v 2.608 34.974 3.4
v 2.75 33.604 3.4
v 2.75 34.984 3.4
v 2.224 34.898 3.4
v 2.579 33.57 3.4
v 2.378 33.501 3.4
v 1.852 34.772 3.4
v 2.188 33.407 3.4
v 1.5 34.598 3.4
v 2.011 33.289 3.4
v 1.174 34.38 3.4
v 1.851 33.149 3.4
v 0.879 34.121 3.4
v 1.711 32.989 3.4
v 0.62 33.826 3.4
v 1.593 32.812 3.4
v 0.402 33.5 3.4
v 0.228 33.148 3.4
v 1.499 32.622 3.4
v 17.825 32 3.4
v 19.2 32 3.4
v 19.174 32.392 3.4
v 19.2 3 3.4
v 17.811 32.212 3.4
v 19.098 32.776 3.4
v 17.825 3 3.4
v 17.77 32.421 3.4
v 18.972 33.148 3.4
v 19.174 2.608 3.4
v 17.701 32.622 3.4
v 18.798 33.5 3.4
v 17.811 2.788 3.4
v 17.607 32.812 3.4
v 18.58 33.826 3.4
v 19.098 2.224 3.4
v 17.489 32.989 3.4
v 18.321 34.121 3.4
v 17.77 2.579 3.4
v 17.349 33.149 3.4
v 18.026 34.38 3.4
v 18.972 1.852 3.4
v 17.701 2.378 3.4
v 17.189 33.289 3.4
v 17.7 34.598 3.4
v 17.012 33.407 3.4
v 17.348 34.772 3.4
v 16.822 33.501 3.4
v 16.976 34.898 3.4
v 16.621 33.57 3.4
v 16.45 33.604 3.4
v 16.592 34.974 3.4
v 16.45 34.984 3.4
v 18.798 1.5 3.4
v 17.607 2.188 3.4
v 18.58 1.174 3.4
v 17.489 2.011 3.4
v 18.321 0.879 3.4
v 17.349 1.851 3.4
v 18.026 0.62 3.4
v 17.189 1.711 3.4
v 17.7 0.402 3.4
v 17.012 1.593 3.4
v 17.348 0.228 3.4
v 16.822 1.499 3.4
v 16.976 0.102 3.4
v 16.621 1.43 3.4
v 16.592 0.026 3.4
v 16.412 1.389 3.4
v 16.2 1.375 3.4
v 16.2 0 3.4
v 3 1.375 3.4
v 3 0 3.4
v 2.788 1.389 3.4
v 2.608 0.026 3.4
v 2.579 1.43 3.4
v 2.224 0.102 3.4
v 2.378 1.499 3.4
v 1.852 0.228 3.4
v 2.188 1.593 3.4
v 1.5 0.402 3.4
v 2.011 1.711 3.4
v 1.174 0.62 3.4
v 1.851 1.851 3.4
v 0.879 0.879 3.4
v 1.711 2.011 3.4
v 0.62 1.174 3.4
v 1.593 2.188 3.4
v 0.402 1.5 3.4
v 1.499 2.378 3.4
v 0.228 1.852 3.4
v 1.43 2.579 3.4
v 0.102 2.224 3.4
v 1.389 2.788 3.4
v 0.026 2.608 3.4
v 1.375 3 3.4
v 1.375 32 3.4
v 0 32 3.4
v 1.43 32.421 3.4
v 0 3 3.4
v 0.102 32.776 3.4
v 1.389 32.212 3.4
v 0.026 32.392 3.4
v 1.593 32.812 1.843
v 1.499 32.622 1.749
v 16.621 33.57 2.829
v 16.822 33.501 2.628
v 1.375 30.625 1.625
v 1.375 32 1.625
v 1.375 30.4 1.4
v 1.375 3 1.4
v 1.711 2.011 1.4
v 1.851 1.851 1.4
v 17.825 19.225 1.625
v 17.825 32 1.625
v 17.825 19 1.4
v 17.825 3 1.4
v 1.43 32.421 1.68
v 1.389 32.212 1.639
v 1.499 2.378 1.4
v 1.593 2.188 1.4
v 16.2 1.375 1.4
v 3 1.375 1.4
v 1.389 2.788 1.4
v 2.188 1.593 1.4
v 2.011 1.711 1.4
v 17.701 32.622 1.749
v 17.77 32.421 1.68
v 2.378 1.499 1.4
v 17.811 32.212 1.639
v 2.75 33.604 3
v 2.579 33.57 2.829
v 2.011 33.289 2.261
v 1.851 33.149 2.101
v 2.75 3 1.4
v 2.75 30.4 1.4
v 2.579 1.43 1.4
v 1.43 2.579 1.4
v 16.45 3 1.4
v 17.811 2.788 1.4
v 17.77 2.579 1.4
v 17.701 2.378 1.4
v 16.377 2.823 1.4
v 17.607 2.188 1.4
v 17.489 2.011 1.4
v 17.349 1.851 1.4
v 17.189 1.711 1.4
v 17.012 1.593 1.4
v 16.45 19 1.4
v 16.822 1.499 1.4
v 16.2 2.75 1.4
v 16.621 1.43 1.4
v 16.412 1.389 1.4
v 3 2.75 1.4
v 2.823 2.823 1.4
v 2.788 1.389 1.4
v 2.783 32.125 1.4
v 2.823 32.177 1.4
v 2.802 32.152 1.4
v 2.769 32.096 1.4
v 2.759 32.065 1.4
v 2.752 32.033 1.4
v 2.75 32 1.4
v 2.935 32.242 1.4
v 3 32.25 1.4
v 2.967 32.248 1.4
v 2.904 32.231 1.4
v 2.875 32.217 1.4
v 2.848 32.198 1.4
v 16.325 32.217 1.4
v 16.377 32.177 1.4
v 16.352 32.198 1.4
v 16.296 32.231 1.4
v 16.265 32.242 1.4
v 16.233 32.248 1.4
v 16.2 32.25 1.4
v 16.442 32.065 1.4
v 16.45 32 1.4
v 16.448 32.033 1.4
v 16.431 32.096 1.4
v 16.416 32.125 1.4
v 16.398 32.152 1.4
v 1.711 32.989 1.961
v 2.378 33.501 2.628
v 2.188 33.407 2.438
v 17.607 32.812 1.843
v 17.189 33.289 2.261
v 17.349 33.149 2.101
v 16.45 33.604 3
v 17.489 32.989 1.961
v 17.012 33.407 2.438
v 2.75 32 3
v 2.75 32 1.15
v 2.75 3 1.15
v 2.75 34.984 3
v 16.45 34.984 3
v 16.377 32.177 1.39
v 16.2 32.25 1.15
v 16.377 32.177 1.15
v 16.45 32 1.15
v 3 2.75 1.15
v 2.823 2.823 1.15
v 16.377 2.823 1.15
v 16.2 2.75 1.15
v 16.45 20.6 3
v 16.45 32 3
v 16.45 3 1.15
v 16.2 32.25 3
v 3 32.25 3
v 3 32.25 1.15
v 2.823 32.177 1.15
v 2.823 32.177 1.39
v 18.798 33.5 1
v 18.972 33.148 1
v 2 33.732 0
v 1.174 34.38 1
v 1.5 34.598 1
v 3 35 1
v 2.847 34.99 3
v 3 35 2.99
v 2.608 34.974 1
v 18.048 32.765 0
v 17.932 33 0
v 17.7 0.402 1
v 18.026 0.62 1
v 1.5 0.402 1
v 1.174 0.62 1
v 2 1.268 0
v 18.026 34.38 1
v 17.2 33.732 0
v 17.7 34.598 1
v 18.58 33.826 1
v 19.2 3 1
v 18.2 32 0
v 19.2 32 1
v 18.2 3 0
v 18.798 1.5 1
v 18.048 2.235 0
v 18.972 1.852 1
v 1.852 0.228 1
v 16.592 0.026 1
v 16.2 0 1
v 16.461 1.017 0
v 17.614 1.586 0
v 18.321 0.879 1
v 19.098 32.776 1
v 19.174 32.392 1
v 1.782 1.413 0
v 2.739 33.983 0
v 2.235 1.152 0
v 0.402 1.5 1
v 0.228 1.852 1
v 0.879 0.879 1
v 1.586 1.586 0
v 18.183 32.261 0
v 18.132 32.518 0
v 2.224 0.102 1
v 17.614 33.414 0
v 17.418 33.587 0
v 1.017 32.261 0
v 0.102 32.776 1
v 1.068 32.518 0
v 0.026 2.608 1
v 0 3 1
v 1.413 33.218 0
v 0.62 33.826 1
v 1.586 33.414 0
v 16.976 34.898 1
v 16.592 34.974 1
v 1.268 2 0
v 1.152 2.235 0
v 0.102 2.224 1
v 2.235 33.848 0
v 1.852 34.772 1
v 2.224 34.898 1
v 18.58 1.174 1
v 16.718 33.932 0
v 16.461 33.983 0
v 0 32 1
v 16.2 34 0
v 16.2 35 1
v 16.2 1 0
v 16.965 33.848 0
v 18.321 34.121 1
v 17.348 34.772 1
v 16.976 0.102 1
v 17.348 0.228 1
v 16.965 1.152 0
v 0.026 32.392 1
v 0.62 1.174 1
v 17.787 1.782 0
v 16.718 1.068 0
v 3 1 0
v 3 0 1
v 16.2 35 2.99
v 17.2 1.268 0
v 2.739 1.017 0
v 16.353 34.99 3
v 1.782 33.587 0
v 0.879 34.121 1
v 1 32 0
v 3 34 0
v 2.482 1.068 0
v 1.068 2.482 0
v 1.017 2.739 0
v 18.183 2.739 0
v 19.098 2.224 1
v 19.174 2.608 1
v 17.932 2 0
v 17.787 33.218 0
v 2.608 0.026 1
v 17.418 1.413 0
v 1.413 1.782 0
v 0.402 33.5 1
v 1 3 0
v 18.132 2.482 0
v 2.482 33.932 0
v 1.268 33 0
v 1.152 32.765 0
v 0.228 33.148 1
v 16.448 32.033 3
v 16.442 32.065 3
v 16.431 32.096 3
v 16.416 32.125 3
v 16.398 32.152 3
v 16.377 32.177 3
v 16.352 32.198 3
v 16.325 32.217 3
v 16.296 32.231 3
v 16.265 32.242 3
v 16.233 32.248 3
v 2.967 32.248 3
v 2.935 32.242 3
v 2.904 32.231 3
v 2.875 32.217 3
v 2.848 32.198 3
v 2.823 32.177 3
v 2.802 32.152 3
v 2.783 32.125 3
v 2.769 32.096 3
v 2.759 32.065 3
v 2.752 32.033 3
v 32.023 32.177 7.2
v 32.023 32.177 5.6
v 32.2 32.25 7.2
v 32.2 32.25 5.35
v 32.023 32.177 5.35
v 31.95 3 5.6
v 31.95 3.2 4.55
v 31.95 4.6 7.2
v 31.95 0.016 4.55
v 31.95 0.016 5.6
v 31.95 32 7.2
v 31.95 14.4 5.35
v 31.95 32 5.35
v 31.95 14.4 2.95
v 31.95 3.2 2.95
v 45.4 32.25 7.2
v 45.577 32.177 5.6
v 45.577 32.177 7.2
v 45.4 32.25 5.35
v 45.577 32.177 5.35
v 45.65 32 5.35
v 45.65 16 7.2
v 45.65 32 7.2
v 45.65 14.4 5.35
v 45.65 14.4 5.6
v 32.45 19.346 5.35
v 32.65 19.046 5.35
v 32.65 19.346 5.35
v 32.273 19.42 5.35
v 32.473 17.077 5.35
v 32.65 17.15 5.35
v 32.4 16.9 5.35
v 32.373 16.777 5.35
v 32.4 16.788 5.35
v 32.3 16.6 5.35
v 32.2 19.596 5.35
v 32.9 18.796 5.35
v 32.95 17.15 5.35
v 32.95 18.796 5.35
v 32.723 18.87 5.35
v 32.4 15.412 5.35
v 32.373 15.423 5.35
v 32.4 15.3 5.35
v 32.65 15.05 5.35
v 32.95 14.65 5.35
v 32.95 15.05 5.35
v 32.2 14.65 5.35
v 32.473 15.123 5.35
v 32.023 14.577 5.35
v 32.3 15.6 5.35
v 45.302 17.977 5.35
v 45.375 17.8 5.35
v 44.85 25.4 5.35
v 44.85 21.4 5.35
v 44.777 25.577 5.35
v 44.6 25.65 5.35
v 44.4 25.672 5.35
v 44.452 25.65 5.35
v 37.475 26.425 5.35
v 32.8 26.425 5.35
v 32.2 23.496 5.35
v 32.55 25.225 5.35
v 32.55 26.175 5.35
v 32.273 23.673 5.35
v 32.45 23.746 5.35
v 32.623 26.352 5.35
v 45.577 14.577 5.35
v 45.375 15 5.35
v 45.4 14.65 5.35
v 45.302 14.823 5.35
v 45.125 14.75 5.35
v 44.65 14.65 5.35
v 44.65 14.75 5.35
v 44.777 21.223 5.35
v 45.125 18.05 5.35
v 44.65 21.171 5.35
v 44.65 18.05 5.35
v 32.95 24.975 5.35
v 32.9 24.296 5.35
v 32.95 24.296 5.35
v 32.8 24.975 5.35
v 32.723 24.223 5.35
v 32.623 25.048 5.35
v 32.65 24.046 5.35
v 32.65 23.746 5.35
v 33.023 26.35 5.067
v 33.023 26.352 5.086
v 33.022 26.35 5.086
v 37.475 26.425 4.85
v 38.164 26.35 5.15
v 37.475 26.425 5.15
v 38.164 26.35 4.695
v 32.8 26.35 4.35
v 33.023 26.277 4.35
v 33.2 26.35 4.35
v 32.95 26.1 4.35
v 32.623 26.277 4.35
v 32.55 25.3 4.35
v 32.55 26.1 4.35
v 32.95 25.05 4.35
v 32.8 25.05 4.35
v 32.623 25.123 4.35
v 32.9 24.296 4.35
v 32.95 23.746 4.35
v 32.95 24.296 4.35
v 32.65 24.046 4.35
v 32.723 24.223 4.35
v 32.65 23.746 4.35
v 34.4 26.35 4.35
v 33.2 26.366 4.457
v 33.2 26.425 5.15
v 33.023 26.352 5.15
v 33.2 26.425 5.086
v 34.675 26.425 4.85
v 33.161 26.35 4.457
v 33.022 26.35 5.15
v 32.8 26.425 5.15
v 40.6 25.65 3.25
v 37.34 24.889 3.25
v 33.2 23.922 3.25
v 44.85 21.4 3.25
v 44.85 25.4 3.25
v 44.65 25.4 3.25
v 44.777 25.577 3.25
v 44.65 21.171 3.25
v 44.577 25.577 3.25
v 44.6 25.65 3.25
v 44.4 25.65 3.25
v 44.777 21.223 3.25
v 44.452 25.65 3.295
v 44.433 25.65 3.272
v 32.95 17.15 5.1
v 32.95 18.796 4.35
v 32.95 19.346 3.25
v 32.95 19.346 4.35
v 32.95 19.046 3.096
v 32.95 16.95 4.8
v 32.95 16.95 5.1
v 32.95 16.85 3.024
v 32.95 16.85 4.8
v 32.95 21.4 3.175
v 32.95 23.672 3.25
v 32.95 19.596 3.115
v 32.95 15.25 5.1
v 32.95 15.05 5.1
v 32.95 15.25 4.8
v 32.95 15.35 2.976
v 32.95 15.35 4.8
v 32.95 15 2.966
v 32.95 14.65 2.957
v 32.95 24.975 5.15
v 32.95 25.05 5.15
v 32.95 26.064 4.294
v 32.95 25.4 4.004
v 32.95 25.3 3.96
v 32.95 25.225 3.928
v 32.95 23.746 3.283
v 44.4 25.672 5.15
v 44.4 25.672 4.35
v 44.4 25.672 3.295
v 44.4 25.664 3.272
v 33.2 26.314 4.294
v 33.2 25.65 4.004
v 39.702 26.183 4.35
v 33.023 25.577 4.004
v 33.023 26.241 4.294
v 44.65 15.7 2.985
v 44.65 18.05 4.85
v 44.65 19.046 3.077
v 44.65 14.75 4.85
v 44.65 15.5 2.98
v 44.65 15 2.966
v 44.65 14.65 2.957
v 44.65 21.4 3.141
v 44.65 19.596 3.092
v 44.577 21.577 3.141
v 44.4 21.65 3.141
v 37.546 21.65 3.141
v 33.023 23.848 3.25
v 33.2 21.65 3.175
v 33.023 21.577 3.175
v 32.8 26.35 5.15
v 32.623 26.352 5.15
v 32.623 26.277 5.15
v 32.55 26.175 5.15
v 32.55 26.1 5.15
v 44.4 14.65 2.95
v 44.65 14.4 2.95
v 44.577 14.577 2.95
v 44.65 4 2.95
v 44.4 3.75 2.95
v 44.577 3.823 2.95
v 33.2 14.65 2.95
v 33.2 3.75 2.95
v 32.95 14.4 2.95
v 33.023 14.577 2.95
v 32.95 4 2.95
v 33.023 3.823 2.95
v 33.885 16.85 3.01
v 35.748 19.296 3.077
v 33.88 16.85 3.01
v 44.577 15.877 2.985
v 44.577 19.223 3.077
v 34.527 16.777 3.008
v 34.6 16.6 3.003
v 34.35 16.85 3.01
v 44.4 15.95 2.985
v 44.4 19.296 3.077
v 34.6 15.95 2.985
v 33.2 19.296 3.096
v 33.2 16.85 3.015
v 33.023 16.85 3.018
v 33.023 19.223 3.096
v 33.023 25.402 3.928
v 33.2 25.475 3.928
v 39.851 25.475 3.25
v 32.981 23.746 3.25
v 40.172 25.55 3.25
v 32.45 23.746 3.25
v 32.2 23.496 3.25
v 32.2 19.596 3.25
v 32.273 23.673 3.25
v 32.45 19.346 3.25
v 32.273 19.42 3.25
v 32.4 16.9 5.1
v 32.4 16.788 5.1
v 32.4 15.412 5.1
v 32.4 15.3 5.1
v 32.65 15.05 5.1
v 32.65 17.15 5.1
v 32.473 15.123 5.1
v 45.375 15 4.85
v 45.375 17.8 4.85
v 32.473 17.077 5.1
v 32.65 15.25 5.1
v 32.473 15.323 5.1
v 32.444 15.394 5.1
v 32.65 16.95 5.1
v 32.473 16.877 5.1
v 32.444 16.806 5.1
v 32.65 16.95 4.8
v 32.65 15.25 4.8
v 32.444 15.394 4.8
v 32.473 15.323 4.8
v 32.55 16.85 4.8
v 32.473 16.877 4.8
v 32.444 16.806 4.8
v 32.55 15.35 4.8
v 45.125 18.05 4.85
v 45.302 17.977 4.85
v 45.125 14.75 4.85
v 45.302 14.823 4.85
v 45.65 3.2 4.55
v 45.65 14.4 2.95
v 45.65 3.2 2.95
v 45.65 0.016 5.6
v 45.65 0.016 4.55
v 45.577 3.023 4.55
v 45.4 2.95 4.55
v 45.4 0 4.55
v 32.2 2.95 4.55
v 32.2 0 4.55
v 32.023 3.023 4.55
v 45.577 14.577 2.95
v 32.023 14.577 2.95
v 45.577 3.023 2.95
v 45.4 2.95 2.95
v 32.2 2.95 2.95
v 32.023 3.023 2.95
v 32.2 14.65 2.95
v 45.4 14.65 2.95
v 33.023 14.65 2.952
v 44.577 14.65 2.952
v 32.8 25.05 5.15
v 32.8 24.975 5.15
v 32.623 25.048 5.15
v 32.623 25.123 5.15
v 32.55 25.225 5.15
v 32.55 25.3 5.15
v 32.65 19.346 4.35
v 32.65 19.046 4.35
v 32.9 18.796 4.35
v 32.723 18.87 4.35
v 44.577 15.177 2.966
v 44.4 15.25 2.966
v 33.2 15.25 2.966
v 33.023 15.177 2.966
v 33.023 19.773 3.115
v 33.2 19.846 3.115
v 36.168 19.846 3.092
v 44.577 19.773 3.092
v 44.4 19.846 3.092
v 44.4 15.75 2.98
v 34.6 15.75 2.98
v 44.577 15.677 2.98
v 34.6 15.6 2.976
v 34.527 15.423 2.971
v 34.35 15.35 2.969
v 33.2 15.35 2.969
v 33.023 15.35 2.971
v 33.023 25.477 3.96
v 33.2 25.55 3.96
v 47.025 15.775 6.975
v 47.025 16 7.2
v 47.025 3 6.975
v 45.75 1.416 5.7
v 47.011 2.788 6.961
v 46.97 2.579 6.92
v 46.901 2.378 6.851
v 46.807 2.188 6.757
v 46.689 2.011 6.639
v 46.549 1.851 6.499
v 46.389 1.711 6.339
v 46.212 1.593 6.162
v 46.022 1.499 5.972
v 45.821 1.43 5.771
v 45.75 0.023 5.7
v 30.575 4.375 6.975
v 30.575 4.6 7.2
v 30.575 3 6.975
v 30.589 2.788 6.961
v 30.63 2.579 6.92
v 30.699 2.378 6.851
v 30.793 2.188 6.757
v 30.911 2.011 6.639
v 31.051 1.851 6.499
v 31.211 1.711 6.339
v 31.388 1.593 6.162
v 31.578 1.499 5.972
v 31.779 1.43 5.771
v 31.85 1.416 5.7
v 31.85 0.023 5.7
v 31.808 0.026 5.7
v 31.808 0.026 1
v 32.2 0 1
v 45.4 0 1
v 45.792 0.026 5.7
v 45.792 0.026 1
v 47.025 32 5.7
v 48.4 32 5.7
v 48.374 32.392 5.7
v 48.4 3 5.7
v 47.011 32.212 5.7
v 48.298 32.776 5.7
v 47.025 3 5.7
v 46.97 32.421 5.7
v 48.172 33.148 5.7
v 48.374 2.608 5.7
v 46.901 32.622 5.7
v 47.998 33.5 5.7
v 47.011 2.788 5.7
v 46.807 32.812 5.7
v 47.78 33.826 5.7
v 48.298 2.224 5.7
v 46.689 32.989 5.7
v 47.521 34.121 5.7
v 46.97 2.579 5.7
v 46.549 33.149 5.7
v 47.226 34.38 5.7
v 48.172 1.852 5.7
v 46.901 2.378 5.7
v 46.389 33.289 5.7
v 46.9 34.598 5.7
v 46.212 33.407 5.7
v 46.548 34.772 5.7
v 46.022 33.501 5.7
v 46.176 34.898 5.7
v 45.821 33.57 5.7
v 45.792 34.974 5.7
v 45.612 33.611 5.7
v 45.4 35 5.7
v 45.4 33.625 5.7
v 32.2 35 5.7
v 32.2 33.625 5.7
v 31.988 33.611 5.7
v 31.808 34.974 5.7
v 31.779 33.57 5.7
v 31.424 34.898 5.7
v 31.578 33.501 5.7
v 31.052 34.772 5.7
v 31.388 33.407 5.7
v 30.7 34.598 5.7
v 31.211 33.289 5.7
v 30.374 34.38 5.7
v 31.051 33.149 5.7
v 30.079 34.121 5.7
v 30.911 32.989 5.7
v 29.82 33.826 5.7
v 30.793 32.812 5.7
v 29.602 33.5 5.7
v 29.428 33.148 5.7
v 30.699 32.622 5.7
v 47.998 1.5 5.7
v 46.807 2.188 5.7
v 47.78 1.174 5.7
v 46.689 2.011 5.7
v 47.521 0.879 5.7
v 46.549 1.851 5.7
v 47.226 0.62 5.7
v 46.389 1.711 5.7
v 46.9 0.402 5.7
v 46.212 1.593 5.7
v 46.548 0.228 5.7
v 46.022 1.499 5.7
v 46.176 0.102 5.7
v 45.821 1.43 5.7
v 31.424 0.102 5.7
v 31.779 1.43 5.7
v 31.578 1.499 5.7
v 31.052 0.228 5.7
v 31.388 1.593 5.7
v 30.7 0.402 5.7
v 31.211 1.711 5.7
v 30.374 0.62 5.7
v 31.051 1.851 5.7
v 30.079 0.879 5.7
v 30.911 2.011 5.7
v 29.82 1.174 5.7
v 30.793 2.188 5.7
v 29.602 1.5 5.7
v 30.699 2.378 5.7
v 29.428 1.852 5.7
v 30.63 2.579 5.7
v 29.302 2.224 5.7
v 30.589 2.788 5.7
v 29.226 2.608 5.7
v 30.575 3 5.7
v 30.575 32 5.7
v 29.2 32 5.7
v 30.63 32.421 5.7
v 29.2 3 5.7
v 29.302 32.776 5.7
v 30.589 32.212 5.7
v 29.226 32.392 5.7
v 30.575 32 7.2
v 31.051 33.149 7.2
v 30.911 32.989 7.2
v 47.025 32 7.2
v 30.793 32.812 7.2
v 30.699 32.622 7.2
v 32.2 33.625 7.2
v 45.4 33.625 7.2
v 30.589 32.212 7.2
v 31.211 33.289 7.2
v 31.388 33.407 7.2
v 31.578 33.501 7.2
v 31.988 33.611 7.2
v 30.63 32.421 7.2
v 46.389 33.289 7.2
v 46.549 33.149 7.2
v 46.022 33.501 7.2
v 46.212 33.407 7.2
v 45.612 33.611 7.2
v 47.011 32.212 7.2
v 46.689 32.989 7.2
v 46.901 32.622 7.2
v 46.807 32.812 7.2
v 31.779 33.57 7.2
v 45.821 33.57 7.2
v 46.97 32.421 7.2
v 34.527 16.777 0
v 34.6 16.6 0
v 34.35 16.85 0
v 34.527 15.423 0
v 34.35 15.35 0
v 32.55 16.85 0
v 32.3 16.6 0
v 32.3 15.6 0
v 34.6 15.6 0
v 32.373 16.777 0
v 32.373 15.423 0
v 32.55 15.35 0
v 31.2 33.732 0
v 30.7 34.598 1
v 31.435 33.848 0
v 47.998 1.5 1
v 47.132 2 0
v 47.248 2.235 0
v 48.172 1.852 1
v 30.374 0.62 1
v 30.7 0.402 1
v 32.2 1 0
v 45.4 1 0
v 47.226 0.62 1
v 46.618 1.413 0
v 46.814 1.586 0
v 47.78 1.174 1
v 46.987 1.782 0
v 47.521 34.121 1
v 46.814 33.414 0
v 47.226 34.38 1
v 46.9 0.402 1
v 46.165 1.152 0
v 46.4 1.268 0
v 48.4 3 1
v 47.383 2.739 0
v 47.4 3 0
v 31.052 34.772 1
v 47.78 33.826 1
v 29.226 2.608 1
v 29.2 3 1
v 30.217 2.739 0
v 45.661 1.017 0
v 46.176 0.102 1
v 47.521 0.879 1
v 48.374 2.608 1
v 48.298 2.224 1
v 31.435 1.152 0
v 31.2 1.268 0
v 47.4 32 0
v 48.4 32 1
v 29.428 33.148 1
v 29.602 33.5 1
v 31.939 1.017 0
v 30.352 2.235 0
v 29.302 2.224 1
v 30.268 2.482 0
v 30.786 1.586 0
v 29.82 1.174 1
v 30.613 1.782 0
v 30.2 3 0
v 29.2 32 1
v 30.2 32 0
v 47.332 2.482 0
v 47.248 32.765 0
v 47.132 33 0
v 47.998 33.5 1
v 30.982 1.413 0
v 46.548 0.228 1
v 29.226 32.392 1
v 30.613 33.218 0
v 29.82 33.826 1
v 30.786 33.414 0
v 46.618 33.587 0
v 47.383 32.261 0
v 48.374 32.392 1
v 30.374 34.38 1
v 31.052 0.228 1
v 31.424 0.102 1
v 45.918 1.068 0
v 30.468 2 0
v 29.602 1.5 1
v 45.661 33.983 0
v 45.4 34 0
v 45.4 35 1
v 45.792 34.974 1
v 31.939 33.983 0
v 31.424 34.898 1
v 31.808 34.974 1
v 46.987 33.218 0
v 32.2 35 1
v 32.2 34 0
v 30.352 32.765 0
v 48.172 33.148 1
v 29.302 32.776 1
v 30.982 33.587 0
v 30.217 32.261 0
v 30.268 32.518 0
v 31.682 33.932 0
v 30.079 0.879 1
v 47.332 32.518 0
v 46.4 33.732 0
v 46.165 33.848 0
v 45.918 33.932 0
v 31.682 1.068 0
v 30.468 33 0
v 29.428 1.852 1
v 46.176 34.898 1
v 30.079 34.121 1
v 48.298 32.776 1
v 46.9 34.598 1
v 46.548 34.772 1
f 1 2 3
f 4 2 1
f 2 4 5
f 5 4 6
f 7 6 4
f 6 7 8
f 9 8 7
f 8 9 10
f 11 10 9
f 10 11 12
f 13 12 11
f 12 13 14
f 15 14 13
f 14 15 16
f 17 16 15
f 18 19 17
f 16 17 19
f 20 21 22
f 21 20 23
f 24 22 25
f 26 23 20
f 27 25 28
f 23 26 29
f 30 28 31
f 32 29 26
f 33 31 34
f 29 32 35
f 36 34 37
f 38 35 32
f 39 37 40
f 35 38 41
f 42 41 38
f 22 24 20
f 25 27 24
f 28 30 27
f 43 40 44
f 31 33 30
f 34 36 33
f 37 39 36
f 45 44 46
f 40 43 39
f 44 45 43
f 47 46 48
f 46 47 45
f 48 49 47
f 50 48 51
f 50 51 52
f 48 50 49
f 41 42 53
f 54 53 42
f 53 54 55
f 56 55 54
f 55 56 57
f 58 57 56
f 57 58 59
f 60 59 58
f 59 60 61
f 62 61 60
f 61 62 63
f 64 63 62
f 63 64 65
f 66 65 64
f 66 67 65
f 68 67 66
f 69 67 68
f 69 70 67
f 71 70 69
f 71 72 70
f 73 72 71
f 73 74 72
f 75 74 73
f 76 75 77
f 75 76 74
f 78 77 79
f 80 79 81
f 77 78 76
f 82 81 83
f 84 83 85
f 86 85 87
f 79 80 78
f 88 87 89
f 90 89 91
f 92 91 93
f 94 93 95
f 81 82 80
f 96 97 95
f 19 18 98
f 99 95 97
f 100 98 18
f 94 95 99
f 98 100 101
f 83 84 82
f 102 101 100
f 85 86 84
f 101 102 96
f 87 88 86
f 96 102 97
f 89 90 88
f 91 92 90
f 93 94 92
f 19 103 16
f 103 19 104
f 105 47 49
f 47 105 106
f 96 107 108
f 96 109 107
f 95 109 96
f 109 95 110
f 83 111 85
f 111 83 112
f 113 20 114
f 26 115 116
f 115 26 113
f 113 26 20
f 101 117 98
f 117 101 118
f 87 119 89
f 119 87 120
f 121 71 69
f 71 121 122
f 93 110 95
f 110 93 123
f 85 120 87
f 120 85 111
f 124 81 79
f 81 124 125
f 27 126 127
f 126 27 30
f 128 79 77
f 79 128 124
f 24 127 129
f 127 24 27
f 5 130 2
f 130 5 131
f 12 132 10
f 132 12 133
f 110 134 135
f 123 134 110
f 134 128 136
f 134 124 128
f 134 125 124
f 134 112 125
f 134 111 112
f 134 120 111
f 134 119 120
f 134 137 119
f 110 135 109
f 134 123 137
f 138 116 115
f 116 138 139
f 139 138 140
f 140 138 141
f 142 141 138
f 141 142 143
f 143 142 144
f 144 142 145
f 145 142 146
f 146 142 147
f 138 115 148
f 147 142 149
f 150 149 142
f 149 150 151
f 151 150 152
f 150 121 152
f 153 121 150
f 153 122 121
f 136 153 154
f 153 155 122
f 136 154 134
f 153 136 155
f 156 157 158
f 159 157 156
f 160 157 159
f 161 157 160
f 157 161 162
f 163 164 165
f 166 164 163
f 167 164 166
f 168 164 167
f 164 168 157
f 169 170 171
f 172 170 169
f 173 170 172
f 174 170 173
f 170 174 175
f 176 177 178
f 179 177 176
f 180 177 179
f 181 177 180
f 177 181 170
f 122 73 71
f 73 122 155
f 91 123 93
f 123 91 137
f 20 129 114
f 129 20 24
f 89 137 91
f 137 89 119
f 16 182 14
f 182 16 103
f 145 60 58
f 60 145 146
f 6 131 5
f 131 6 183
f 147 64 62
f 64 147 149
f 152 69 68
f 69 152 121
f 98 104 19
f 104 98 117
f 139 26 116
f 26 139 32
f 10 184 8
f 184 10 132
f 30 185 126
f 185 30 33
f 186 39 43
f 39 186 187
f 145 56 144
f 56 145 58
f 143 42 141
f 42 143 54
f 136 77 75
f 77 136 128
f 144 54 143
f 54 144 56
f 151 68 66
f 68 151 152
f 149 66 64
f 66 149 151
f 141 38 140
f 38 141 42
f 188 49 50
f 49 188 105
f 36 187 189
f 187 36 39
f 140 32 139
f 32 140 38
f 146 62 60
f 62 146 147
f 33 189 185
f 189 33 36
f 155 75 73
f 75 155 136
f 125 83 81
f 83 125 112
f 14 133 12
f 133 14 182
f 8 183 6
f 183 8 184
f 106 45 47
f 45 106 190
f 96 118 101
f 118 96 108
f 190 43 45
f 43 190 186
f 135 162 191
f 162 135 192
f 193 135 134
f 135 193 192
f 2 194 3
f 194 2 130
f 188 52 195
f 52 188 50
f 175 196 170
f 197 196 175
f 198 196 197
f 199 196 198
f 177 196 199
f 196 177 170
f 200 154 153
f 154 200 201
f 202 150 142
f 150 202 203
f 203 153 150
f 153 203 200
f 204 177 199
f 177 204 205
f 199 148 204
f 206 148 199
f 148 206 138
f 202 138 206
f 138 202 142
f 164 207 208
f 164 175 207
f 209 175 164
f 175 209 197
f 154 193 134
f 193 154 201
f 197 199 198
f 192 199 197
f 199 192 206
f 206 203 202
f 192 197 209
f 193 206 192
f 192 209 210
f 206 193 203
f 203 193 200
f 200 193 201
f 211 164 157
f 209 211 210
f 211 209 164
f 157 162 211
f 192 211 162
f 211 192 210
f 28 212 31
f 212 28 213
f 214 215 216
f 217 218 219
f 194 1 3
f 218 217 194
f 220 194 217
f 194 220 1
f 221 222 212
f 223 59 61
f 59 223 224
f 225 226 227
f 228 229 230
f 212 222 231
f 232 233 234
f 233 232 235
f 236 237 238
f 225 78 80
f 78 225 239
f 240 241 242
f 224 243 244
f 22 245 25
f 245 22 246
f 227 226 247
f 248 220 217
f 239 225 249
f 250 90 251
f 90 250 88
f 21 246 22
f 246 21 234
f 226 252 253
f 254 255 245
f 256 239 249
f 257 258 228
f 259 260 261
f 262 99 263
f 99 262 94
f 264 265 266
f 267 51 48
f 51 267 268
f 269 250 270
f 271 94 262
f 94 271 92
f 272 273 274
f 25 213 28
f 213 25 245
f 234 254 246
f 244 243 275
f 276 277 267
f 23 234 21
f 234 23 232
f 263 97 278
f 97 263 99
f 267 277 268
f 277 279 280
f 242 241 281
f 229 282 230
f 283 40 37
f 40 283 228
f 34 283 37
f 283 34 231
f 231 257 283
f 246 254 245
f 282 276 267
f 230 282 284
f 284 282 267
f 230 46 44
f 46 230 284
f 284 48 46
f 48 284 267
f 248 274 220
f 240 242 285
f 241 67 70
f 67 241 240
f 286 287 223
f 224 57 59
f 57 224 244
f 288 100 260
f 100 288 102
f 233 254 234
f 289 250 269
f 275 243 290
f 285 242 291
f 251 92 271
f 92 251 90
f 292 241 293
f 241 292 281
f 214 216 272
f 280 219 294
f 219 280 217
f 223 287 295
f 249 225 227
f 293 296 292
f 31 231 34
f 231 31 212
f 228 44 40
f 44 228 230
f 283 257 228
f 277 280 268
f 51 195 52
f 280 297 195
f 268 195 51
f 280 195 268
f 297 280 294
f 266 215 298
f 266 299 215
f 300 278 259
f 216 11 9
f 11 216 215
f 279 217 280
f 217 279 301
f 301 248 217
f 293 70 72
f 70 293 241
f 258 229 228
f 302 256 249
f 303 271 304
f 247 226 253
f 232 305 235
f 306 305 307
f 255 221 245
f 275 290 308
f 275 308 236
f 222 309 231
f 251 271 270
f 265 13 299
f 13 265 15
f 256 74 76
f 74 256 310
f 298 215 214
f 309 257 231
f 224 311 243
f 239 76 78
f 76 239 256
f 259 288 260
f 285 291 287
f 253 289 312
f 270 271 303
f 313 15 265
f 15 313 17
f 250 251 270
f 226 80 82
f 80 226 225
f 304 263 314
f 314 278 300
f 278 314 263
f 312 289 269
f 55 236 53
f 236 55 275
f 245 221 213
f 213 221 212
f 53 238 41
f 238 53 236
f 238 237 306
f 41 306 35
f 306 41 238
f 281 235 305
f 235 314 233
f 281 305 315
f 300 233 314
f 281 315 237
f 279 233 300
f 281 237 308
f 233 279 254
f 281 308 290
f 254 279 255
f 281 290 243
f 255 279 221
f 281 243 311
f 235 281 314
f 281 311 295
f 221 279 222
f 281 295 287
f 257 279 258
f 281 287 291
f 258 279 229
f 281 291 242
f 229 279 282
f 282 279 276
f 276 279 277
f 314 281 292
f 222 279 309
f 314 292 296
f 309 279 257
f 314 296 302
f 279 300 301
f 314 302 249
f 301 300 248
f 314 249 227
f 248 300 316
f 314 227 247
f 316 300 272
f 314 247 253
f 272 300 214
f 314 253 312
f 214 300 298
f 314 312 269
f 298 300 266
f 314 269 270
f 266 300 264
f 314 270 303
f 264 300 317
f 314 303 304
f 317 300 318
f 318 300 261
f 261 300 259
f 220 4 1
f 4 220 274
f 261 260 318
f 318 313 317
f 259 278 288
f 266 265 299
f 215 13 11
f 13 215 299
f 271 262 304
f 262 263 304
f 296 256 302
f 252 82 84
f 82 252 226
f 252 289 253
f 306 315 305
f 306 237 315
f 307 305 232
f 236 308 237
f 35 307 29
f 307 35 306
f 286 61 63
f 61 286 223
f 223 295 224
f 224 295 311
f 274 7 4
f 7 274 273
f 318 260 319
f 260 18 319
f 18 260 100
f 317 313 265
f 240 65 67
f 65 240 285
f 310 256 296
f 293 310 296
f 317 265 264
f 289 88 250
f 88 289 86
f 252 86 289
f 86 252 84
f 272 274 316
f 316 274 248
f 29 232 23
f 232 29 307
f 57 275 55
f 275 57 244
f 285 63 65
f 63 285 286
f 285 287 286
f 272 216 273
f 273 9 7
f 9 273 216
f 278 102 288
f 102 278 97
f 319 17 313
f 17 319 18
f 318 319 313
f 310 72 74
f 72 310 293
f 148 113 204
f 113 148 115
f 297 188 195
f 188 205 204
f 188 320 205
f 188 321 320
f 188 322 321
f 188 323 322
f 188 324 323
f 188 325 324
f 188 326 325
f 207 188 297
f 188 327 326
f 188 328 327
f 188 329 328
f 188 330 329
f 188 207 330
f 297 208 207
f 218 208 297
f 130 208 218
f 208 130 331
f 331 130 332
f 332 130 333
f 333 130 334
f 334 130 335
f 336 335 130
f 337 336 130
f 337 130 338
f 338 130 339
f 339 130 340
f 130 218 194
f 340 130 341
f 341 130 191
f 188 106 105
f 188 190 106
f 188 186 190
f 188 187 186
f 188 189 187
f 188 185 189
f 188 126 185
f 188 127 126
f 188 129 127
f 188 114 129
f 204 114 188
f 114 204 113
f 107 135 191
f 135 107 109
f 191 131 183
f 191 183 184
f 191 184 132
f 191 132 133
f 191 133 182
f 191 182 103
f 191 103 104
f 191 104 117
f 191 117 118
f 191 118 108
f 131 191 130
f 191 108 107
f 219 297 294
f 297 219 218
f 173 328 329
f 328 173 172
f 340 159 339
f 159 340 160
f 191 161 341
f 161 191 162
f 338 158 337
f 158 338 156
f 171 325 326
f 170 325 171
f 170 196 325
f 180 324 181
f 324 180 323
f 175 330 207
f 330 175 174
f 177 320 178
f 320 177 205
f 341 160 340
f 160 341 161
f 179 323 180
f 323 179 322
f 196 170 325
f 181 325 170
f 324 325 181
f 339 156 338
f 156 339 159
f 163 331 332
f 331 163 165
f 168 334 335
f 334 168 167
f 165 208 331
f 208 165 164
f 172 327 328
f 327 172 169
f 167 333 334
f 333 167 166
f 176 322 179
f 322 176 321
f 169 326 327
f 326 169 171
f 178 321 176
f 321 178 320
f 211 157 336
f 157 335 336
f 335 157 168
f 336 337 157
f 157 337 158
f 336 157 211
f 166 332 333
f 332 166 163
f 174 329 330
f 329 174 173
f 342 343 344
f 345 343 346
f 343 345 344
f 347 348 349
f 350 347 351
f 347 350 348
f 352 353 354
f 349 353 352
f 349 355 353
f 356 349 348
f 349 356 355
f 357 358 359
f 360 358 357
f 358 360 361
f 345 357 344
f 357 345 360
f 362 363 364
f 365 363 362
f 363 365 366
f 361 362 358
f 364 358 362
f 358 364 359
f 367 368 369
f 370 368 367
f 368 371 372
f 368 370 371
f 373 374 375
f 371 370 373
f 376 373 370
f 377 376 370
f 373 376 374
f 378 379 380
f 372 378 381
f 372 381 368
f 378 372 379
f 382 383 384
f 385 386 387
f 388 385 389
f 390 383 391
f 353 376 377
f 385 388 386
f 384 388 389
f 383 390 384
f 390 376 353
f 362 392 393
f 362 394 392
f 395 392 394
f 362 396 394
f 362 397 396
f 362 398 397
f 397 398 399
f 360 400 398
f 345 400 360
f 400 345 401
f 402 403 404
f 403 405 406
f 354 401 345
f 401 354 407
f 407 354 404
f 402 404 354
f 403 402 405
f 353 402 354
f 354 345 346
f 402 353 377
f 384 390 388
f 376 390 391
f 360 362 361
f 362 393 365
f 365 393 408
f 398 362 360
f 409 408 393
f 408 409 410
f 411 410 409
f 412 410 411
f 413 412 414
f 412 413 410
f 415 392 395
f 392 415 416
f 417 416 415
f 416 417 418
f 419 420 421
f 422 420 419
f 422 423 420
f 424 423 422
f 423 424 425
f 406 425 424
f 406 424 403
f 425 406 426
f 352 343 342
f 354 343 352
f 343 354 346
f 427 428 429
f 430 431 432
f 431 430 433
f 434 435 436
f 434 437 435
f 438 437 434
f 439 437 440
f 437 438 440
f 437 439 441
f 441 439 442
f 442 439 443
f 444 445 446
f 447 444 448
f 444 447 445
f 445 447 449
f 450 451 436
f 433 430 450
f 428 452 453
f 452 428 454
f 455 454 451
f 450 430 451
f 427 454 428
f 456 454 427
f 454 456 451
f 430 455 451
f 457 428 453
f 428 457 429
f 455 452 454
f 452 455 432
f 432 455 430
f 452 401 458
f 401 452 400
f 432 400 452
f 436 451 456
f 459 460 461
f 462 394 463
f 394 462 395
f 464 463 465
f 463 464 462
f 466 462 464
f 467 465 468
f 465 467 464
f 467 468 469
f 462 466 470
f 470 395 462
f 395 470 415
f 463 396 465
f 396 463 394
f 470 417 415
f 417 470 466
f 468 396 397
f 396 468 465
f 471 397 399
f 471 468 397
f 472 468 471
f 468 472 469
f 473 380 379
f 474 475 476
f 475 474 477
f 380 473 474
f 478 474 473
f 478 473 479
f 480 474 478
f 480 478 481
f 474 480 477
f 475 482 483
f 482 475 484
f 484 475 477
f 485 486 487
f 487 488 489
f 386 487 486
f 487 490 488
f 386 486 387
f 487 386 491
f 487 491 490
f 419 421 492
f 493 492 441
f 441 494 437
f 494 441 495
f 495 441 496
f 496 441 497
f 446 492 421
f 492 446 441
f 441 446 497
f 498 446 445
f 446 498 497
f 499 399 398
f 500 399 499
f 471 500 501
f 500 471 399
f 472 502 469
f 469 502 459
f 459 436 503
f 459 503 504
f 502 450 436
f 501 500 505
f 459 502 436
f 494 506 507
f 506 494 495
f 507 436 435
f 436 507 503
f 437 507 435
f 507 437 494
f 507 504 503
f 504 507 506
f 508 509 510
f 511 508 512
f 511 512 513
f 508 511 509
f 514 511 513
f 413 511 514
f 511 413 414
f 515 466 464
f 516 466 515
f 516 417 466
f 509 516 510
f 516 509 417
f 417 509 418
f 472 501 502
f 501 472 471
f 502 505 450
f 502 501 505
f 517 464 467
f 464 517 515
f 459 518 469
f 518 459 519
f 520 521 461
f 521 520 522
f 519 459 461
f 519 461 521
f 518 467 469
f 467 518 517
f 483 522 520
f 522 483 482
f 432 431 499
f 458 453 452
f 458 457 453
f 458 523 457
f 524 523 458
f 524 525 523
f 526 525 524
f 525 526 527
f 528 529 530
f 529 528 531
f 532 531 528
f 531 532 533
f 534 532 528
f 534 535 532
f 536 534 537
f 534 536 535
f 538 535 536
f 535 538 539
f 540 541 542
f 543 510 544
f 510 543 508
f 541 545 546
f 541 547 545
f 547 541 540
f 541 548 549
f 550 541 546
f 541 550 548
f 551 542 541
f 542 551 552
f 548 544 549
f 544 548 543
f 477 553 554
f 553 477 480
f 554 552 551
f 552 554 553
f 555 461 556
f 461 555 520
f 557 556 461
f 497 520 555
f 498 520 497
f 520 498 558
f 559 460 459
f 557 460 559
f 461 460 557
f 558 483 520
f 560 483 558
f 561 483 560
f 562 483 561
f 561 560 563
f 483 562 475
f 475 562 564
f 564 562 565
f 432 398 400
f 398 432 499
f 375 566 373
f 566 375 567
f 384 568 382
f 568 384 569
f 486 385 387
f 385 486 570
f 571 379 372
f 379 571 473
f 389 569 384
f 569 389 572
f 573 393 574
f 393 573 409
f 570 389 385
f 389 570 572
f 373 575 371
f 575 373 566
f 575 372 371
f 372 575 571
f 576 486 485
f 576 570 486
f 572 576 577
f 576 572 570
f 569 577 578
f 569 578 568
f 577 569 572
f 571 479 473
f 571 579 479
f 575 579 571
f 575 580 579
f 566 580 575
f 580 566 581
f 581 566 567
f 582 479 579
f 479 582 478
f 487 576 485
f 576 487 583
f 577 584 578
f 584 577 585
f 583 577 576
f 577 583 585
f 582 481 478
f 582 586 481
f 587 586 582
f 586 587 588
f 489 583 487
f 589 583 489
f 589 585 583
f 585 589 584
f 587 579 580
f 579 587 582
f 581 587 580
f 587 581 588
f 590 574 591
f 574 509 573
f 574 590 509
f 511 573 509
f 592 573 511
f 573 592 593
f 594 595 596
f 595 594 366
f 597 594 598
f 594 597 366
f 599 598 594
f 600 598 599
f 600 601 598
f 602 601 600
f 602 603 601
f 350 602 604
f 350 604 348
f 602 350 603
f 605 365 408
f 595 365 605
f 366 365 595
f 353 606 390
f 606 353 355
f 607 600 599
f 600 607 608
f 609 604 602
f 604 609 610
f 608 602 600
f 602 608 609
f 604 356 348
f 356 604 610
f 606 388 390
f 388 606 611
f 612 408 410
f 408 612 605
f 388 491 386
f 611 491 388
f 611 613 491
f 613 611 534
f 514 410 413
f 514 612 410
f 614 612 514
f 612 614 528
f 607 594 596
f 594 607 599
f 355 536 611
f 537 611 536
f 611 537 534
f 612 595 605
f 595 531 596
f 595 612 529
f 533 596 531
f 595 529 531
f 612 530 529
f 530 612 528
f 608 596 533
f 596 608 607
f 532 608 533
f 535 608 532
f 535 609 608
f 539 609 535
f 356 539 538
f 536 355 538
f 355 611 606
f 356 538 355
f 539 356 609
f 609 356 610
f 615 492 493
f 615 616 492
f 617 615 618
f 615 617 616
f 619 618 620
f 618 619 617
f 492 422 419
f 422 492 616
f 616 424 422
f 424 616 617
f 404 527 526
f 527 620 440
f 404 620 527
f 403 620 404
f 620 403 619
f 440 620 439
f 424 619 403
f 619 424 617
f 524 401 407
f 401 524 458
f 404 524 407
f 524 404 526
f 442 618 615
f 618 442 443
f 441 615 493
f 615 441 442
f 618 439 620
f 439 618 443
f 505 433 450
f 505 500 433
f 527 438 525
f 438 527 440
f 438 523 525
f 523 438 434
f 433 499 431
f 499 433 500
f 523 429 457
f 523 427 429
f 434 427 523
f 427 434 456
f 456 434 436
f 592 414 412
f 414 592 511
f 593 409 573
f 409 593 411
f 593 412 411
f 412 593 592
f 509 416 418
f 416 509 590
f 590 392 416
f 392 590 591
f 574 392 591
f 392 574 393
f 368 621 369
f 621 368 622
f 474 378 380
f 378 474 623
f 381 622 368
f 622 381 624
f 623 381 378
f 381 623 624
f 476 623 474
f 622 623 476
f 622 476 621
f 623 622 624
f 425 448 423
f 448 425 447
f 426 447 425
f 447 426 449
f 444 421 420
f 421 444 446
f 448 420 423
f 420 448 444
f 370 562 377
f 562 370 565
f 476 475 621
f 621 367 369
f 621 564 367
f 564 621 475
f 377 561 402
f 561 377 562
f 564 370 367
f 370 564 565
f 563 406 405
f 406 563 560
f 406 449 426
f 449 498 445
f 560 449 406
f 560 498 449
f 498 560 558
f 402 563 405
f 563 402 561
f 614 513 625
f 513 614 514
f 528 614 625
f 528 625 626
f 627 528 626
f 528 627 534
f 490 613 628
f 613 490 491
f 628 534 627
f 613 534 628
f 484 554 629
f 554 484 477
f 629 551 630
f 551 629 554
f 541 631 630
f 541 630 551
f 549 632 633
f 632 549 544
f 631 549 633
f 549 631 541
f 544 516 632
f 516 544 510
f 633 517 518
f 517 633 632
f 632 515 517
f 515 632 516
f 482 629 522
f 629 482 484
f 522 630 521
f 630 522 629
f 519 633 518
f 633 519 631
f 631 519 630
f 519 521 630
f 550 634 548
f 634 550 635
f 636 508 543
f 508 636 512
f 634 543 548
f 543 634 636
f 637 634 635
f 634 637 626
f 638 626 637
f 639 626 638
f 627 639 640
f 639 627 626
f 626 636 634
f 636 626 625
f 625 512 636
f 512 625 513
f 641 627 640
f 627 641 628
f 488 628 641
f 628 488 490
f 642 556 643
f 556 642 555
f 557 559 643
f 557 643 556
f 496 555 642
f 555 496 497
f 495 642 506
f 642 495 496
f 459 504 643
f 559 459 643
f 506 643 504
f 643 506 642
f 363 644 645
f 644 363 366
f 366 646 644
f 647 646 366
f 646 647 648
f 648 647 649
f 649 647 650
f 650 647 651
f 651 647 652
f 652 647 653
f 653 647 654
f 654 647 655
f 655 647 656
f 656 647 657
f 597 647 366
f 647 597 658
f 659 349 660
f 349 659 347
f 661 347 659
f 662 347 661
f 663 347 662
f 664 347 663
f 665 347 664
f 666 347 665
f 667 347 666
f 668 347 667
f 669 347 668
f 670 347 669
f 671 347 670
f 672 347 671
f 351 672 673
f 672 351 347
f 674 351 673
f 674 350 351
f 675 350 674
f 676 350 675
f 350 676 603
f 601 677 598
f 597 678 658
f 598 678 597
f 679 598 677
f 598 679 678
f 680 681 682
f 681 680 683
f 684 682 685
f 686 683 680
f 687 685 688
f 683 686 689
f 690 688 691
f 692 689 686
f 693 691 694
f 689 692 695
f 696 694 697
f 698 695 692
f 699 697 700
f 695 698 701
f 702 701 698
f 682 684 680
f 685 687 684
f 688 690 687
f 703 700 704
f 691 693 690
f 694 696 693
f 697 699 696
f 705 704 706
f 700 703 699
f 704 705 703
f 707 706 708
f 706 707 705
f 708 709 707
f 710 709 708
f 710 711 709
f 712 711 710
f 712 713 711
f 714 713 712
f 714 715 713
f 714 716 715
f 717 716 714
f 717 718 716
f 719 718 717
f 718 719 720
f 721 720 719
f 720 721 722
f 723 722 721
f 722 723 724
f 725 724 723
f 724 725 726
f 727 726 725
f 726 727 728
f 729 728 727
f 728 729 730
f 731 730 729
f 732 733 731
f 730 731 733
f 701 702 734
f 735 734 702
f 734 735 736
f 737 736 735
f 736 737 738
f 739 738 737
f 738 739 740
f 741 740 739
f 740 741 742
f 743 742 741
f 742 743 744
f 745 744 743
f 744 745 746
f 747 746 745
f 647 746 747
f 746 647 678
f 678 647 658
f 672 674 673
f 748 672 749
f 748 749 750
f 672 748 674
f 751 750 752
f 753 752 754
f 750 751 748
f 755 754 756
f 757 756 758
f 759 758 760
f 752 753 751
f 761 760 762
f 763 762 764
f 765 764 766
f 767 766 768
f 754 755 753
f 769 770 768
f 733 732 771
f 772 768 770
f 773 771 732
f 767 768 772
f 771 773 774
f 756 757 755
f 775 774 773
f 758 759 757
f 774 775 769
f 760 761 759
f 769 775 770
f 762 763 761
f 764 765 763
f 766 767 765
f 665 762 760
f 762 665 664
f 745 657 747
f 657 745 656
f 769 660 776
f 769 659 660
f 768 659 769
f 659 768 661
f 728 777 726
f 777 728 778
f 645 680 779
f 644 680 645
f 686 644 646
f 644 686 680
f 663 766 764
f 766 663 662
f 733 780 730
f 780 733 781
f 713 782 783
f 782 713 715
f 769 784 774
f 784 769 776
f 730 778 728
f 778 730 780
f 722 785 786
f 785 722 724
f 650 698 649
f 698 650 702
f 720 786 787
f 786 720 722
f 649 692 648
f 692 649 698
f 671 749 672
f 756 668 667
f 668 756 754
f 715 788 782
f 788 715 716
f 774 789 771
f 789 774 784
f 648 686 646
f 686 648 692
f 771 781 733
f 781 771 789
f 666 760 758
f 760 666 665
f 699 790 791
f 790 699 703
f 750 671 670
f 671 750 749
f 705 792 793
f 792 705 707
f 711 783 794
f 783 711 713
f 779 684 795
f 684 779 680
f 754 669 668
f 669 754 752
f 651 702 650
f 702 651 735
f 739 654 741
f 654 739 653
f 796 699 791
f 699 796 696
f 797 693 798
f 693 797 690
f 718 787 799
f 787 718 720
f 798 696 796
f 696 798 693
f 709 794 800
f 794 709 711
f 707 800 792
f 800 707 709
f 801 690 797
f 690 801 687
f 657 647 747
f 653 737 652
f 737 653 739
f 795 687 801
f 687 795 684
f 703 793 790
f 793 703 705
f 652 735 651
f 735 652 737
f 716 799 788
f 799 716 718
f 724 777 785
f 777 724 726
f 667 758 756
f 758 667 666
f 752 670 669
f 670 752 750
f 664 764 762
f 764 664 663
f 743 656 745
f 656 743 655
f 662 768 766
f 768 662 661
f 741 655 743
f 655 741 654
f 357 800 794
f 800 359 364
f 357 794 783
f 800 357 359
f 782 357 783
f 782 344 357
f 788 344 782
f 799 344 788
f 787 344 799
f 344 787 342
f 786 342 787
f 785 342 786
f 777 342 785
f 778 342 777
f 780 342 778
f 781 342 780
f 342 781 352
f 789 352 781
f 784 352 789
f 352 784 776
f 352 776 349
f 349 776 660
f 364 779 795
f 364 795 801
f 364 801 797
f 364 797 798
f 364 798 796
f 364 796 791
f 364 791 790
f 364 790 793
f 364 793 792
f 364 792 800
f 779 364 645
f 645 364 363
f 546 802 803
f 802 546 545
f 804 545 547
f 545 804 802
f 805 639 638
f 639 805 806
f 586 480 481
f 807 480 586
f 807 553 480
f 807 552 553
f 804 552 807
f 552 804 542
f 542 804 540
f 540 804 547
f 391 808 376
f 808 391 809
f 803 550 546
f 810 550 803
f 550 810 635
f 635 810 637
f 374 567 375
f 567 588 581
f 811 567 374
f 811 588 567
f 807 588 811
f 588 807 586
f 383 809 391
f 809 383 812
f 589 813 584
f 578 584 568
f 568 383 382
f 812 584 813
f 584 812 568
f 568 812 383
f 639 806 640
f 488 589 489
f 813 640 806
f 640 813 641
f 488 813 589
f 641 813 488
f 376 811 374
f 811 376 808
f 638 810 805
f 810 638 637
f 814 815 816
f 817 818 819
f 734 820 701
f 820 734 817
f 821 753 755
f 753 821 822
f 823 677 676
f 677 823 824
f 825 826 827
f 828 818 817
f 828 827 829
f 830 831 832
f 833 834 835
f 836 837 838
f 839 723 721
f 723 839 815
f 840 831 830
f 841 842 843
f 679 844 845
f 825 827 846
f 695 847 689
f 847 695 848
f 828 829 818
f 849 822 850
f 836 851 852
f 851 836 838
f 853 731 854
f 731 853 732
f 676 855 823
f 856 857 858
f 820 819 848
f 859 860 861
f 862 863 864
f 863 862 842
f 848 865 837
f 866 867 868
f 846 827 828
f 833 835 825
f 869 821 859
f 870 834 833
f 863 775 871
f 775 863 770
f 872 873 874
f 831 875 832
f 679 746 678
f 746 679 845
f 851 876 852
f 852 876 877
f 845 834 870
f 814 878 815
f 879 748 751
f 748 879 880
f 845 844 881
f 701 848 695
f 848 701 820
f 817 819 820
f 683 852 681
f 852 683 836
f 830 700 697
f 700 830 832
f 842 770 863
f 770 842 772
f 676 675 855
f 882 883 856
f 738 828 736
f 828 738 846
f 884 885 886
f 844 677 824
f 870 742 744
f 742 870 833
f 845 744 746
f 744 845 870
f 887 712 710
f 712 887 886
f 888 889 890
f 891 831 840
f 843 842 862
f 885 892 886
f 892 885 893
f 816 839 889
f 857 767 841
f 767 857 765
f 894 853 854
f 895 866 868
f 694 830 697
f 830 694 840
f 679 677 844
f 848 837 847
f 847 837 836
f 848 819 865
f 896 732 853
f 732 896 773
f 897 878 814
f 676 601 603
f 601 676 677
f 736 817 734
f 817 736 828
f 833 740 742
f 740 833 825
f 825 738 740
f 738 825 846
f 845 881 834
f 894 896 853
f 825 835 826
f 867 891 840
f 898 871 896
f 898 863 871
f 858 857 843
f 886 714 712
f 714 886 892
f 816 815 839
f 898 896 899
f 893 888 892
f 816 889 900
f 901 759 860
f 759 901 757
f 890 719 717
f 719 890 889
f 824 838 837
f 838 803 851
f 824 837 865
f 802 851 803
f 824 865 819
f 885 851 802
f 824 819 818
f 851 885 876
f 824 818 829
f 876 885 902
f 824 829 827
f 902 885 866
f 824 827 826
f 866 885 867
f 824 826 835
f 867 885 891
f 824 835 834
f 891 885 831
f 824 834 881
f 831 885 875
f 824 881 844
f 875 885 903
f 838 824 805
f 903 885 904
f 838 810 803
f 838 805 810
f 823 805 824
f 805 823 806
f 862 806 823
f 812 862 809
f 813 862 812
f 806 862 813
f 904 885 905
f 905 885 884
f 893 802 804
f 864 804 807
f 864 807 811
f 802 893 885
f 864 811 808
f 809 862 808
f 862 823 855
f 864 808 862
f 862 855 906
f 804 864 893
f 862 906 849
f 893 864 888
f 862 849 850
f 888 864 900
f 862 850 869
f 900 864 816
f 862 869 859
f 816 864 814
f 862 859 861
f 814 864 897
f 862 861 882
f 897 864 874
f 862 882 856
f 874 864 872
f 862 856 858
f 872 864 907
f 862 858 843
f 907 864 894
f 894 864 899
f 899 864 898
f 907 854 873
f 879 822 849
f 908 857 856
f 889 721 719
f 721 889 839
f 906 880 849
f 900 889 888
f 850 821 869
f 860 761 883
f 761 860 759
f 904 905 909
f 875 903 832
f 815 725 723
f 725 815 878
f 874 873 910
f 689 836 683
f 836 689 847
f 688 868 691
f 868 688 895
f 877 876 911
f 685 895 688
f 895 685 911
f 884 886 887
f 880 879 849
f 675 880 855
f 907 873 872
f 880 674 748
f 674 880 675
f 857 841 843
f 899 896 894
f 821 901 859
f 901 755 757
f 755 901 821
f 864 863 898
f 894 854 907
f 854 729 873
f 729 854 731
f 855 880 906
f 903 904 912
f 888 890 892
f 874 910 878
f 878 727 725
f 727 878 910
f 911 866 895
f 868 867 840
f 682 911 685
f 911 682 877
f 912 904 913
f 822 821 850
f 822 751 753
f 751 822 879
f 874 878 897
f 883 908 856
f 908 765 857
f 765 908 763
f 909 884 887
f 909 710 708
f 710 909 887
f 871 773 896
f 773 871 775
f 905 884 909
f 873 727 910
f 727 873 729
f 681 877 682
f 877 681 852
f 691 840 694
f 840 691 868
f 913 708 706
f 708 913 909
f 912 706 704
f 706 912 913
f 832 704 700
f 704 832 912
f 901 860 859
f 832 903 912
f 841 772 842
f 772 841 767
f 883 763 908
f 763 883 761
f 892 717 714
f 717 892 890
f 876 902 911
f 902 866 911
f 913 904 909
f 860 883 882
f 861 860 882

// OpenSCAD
// Generated case design for KiCad/Keypad2.kicad_pcb
// By https://github.com/revk/PCBCase
// Generated 2022-08-16 09:19:26
// title:	Generic ESP32 with GPIO
// date:	${DATE}
// rev:	5
// company:	Adrian Kennard Andrews & Arnold Ltd
// comment:	www.me.uk
// comment:	@TheRealRevK
//

// Globals
margin=0.500000;
overlap=2.000000;
lip=0.000000;
casebase=1.400000;
casetop=5.600000;
casewall=3.000000;
fit=0.000000;
edge=1.000000;
pcbthickness=1.600000;
nohull=false;
hullcap=1.000000;
hulledge=1.000000;
useredge=false;

module pcb(h=pcbthickness,r=0){linear_extrude(height=h)offset(r=r)polygon(points=[[0.000000,0.000000],[0.000000,29.000000],[13.200000,29.000000],[13.200000,0.000000]],paths=[[0,1,2,3]]);}

module outline(h=pcbthickness,r=0){linear_extrude(height=h)offset(r=r)polygon(points=[[0.000000,0.000000],[0.000000,29.000000],[13.200000,29.000000],[13.200000,0.000000]],paths=[[0,1,2,3]]);}
spacing=29.200000;
pcbwidth=13.200000;
pcblength=29.000000;
// Populated PCB
module board(pushed=false,hulled=false){
translate([6.850000,7.100000,1.600000])m0(pushed,hulled); // RevK:C_0805_ C_0805_2012Metric
translate([3.875000,6.300000,1.600000])rotate([0,0,180.000000])m1(pushed,hulled); // RevK:R_0603 R_0603_1608Metric
translate([10.150000,14.600000,1.600000])m2(pushed,hulled); // RevK:C_0603_ C_0603_1608Metric
translate([5.400000,15.900000,1.600000])rotate([0,0,90.000000])m1(pushed,hulled); // RevK:R_0603 R_0603_1608Metric
translate([6.600000,23.400000,1.600000])translate([0.000000,2.500000,0.000000])rotate([-90.000000,0.000000,0.000000])m3(pushed,hulled); // RevK:ESP32-PICO-MINI-02 ESP32-PICO-MINI-02
translate([6.850000,13.350000,1.600000])m0(pushed,hulled); // RevK:C_0805_ C_0805_2012Metric
// Missing RevK:Molex_MiniSPOX_H4V 22035045
translate([10.550000,16.400000,1.600000])m1(pushed,hulled); // RevK:R_0603 R_0603_1608Metric
translate([2.700000,10.453494,1.600000])rotate([0,0,-90.000000])m5(pushed,hulled); // Package_SO:SO-8_3.9x4.9mm_P1.27mm SOIC-8_3.9x4.9mm_P1.27mm
translate([7.230000,10.220000,1.600000])rotate([0,0,90.000000])m6(pushed,hulled); // RevK:D_1206_ D_1206_3216Metric
translate([1.250000,15.900000,1.600000])rotate([0,0,90.000000])translate([0.000000,-0.400000,0.000000])m7(pushed,hulled); // RevK:LED-RGB-1.6x1.6 LED_0603_1608Metric
translate([1.250000,15.900000,1.600000])rotate([0,0,90.000000])translate([0.000000,0.400000,0.000000])m7(pushed,hulled); // RevK:LED-RGB-1.6x1.6 LED_0603_1608Metric
translate([10.400000,12.500000,1.600000])rotate([0,0,-90.000000])rotate([0.000000,0.000000,90.000000])m8(pushed,hulled); // RevK:SOT-23-Thin-6-Reg SOT-23-6
translate([12.450000,15.600000,1.600000])rotate([0,0,-90.000000])m1(pushed,hulled); // RevK:R_0603 R_0603_1608Metric
translate([4.150000,15.900000,1.600000])rotate([0,0,90.000000])m1(pushed,hulled); // RevK:R_0603 R_0603_1608Metric
translate([1.400000,6.300000,1.600000])m2(pushed,hulled); // RevK:C_0603_ C_0603_1608Metric
translate([2.900000,15.900000,1.600000])rotate([0,0,90.000000])m1(pushed,hulled); // RevK:R_0603 R_0603_1608Metric
translate([6.600000,15.900000,1.600000])rotate([0,0,-90.000000])m2(pushed,hulled); // RevK:C_0603_ C_0603_1608Metric
translate([10.400000,8.600000,1.600000])rotate([0,0,90.000000])rotate([0.000000,0.000000,90.000000])m9(pushed,hulled); // RevK:L_4x4_ TYA4020
}

module b(cx,cy,z,w,l,h){translate([cx-w/2,cy-l/2,z])cube([w,l,h]);}
module m0(pushed=false,hulled=false)
{ // RevK:C_0805_ C_0805_2012Metric
b(0,0,0,2,1.45,0.2); // Pad size
b(0,0,0,2,1.2,1); // Chip
}

module m1(pushed=false,hulled=false)
{ // RevK:R_0603 R_0603_1608Metric
b(0,0,0,2.8,0.95,0.5); // Pad size
}

module m2(pushed=false,hulled=false)
{ // RevK:C_0603_ C_0603_1608Metric
b(0,0,0,1.6,0.95,0.2); // Pad size
b(0,0,0,1.6,0.8,1); // Chip
}

module m3(pushed=false,hulled=false)
{ // RevK:ESP32-PICO-MINI-02 ESP32-PICO-MINI-02
rotate([90,0,0])
translate([-13.2/2,-16.6/2,0])
{
	if(!hulled)cube([13.2,16.6,0.8]);
	cube([13.2,11.2,2.4]);
}
}

module m5(pushed=false,hulled=false)
{ // Package_SO:SO-8_3.9x4.9mm_P1.27mm SOIC-8_3.9x4.9mm_P1.27mm
b(0,0,0,5,4,1);
b(0,0,0,3.9,4.9,2.1);
}

module m6(pushed=false,hulled=false)
{ // RevK:D_1206_ D_1206_3216Metric
b(0,0,0,4.4,1.75,1.2); // Pad size
}

module m7(pushed=false,hulled=false)
{ // RevK:LED-RGB-1.6x1.6 LED_0603_1608Metric
b(0,0,0,1.6,0.8,0.25);
b(0,0,0,1.2,0.8,0.55);
b(0,0,0,0.8,0.8,0.95);
if(!hulled&&pushed)b(0,0,0,1,1,20);
}

module m8(pushed=false,hulled=false)
{ // RevK:SOT-23-Thin-6-Reg SOT-23-6
b(0,0,0,3.05,3.05,0.5);
b(0,0,0,1.45,3.05,1.1);
}

module m9(pushed=false,hulled=false)
{ // RevK:L_4x4_ TYA4020
b(0,0,0,4,4,2.1);
}

height=casebase+pcbthickness+casetop;
$fn=48;

module boardh(pushed=false)
{ // Board with hulled parts
	union()
	{
		if(!nohull)intersection()
		{
			translate([0,0,hullcap-casebase])outline(casebase+pcbthickness+casetop-hullcap*2,-hulledge);
			hull()board(pushed,true);
		}
		board(pushed,false);
		pcb();
	}
}

module boardf()
{ // This is the board, but stretched up to make a push out in from the front
	render()
	{
		intersection()
		{
			translate([-casewall-1,-casewall-1,-casebase-1]) cube([pcbwidth+casewall*2+2,pcblength+casewall*2+2,height+2]);
			union()
			{
				minkowski()
				{
					boardh(true);
					cylinder(h=height+100,d=margin,$fn=8);
				}
				board(false,false);
			}
		}
	}
}

module boardb()
{ // This is the board, but stretched down to make a push out in from the back
	render()
	{
		intersection()
		{
			translate([-casewall-1,-casewall-1,-casebase-1]) cube([pcbwidth+casewall*2+2,pcblength+casewall*2+2,height+2]);
			union()
			{
				minkowski()
				{
					boardh(true);
					translate([0,0,-height-100])
					cylinder(h=height+100,d=margin,$fn=8);
				}
				board(false,false);
			}
		}
	}
}

module boardm()
{
	render()
	{
 		minkowski()
 		{
			translate([0,0,-margin/2])cylinder(d=margin,h=margin,$fn=8);
 			boardh(false);
		}
		//intersection()
    		//{
        		//translate([0,0,-(casebase-hullcap)])pcb(pcbthickness+(casebase-hullcap)+(casetop-hullcap));
        		//translate([0,0,-(casebase-hullcap)])outline(pcbthickness+(casebase-hullcap)+(casetop-hullcap));
			boardh(false);
    		//}
 	}
}

module pcbh(h=pcbthickness,r=0)
{ // PCB shape for case
	if(useredge)outline(h,r);
	else hull()outline(h,r);
}

module pyramid()
{ // A pyramid
 polyhedron(points=[[0,0,0],[-height,-height,height],[-height,height,height],[height,height,height],[height,-height,height]],faces=[[0,1,2],[0,2,3],[0,3,4],[0,4,1],[4,3,2,1]]);
}

module wall(d=0)
{ // The case wall
    	translate([0,0,-casebase-d])pcbh(height+d*2,margin/2+d);
}

module cutf()
{ // This cut up from base in the wall
	intersection()
	{
		boardf();
		difference()
		{
			translate([-casewall+0.01,-casewall+0.01,-casebase+0.01])cube([pcbwidth+casewall*2-0.02,pcblength+casewall*2-0.02,casebase+overlap+lip]);
			wall();
			boardb();
		}
	}
}

module cutb()
{ // The cut down from top in the wall
	intersection()
	{
		boardb();
		difference()
		{
			translate([-casewall+0.01,-casewall+0.01,0.01])cube([pcbwidth+casewall*2-0.02,pcblength+casewall*2-0.02,casetop+pcbthickness]);
			wall();
			boardf();
		}
	}
}

module cutpf()
{ // the push up but pyramid
	render()
	intersection()
	{
		minkowski()
		{
			pyramid();
			cutf();
		}
		difference()
		{
			translate([-casewall-0.01,-casewall-0.01,-casebase-0.01])cube([pcbwidth+casewall*2+0.02,pcblength+casewall*2+0.02,casebase+overlap+lip+0.02]);
			wall();
			boardh(true);
		}
		translate([-casewall,-casewall,-casebase])case();
	}
}

module cutpb()
{ // the push down but pyramid
	render()
	intersection()
	{
		minkowski()
		{
			scale([1,1,-1])pyramid();
			cutb();
		}
		difference()
		{
			translate([-casewall-0.01,-casewall-0.01,-0.01])cube([pcbwidth+casewall*2+0.02,pcblength+casewall*2+0.02,casetop+pcbthickness+0.02]);
			wall();
			boardh(true);
		}
		translate([-casewall,-casewall,-casebase])case();
	}
}

module case()
{ // The basic case
	hull()
	{
		translate([casewall,casewall,0])pcbh(height,casewall-edge);
		translate([casewall,casewall,edge])pcbh(height-edge*2,casewall);
	}
}

module cut(d=0)
{ // The cut point in the wall
	translate([casewall,casewall,casebase+lip])pcbh(casetop+pcbthickness-lip+1,casewall/2+d/2+margin/4);
}

module base()
{ // The base
	difference()
	{
		case();
		difference()
		{
			union()
			{
				translate([-1,-1,casebase+overlap+lip])cube([pcbwidth+casewall*2+2,pcblength+casewall*2+2,casetop+1]);
				cut(fit);
			}
		}
		translate([casewall,casewall,casebase])boardf();
		translate([casewall,casewall,casebase])boardm();
		translate([casewall,casewall,casebase])cutpf();
	}
	translate([casewall,casewall,casebase])cutpb();
}

module top()
{
	translate([0,pcblength+casewall*2,height])rotate([180,0,0])
	{
		difference()
		{
			case();
			difference()
			{
				translate([-1,-1,-1])cube([pcbwidth+casewall*2+2,pcblength+casewall*2+2,casebase+overlap+lip-margin+1]);
				cut(-fit);
			}
			translate([casewall,casewall,casebase])boardb();
			translate([casewall,casewall,casebase])boardm();
			translate([casewall,casewall,casebase])cutpb();
		}
		translate([casewall,casewall,casebase])cutpf();
	}
}

module test()
{
	translate([0*spacing,0,0])base();
	translate([1*spacing,0,0])top();
	translate([2*spacing,0,0])pcb();
	translate([3*spacing,0,0])outline();
	translate([4*spacing,0,0])wall();
	translate([5*spacing,0,0])board();
	translate([6*spacing,0,0])board(false,true);
	translate([7*spacing,0,0])board(true);
	translate([8*spacing,0,0])boardh();
	translate([9*spacing,0,0])boardf();
	translate([10*spacing,0,0])boardb();
	translate([11*spacing,0,0])cutpf();
	translate([12*spacing,0,0])cutpb();
	translate([13*spacing,0,0])cutf();
	translate([14*spacing,0,0])cutb();
	translate([15*spacing,0,0])case();
}

module parts()
{
	base();
	translate([spacing,0,0])top();
}
base(); translate([spacing,0,0])top();
